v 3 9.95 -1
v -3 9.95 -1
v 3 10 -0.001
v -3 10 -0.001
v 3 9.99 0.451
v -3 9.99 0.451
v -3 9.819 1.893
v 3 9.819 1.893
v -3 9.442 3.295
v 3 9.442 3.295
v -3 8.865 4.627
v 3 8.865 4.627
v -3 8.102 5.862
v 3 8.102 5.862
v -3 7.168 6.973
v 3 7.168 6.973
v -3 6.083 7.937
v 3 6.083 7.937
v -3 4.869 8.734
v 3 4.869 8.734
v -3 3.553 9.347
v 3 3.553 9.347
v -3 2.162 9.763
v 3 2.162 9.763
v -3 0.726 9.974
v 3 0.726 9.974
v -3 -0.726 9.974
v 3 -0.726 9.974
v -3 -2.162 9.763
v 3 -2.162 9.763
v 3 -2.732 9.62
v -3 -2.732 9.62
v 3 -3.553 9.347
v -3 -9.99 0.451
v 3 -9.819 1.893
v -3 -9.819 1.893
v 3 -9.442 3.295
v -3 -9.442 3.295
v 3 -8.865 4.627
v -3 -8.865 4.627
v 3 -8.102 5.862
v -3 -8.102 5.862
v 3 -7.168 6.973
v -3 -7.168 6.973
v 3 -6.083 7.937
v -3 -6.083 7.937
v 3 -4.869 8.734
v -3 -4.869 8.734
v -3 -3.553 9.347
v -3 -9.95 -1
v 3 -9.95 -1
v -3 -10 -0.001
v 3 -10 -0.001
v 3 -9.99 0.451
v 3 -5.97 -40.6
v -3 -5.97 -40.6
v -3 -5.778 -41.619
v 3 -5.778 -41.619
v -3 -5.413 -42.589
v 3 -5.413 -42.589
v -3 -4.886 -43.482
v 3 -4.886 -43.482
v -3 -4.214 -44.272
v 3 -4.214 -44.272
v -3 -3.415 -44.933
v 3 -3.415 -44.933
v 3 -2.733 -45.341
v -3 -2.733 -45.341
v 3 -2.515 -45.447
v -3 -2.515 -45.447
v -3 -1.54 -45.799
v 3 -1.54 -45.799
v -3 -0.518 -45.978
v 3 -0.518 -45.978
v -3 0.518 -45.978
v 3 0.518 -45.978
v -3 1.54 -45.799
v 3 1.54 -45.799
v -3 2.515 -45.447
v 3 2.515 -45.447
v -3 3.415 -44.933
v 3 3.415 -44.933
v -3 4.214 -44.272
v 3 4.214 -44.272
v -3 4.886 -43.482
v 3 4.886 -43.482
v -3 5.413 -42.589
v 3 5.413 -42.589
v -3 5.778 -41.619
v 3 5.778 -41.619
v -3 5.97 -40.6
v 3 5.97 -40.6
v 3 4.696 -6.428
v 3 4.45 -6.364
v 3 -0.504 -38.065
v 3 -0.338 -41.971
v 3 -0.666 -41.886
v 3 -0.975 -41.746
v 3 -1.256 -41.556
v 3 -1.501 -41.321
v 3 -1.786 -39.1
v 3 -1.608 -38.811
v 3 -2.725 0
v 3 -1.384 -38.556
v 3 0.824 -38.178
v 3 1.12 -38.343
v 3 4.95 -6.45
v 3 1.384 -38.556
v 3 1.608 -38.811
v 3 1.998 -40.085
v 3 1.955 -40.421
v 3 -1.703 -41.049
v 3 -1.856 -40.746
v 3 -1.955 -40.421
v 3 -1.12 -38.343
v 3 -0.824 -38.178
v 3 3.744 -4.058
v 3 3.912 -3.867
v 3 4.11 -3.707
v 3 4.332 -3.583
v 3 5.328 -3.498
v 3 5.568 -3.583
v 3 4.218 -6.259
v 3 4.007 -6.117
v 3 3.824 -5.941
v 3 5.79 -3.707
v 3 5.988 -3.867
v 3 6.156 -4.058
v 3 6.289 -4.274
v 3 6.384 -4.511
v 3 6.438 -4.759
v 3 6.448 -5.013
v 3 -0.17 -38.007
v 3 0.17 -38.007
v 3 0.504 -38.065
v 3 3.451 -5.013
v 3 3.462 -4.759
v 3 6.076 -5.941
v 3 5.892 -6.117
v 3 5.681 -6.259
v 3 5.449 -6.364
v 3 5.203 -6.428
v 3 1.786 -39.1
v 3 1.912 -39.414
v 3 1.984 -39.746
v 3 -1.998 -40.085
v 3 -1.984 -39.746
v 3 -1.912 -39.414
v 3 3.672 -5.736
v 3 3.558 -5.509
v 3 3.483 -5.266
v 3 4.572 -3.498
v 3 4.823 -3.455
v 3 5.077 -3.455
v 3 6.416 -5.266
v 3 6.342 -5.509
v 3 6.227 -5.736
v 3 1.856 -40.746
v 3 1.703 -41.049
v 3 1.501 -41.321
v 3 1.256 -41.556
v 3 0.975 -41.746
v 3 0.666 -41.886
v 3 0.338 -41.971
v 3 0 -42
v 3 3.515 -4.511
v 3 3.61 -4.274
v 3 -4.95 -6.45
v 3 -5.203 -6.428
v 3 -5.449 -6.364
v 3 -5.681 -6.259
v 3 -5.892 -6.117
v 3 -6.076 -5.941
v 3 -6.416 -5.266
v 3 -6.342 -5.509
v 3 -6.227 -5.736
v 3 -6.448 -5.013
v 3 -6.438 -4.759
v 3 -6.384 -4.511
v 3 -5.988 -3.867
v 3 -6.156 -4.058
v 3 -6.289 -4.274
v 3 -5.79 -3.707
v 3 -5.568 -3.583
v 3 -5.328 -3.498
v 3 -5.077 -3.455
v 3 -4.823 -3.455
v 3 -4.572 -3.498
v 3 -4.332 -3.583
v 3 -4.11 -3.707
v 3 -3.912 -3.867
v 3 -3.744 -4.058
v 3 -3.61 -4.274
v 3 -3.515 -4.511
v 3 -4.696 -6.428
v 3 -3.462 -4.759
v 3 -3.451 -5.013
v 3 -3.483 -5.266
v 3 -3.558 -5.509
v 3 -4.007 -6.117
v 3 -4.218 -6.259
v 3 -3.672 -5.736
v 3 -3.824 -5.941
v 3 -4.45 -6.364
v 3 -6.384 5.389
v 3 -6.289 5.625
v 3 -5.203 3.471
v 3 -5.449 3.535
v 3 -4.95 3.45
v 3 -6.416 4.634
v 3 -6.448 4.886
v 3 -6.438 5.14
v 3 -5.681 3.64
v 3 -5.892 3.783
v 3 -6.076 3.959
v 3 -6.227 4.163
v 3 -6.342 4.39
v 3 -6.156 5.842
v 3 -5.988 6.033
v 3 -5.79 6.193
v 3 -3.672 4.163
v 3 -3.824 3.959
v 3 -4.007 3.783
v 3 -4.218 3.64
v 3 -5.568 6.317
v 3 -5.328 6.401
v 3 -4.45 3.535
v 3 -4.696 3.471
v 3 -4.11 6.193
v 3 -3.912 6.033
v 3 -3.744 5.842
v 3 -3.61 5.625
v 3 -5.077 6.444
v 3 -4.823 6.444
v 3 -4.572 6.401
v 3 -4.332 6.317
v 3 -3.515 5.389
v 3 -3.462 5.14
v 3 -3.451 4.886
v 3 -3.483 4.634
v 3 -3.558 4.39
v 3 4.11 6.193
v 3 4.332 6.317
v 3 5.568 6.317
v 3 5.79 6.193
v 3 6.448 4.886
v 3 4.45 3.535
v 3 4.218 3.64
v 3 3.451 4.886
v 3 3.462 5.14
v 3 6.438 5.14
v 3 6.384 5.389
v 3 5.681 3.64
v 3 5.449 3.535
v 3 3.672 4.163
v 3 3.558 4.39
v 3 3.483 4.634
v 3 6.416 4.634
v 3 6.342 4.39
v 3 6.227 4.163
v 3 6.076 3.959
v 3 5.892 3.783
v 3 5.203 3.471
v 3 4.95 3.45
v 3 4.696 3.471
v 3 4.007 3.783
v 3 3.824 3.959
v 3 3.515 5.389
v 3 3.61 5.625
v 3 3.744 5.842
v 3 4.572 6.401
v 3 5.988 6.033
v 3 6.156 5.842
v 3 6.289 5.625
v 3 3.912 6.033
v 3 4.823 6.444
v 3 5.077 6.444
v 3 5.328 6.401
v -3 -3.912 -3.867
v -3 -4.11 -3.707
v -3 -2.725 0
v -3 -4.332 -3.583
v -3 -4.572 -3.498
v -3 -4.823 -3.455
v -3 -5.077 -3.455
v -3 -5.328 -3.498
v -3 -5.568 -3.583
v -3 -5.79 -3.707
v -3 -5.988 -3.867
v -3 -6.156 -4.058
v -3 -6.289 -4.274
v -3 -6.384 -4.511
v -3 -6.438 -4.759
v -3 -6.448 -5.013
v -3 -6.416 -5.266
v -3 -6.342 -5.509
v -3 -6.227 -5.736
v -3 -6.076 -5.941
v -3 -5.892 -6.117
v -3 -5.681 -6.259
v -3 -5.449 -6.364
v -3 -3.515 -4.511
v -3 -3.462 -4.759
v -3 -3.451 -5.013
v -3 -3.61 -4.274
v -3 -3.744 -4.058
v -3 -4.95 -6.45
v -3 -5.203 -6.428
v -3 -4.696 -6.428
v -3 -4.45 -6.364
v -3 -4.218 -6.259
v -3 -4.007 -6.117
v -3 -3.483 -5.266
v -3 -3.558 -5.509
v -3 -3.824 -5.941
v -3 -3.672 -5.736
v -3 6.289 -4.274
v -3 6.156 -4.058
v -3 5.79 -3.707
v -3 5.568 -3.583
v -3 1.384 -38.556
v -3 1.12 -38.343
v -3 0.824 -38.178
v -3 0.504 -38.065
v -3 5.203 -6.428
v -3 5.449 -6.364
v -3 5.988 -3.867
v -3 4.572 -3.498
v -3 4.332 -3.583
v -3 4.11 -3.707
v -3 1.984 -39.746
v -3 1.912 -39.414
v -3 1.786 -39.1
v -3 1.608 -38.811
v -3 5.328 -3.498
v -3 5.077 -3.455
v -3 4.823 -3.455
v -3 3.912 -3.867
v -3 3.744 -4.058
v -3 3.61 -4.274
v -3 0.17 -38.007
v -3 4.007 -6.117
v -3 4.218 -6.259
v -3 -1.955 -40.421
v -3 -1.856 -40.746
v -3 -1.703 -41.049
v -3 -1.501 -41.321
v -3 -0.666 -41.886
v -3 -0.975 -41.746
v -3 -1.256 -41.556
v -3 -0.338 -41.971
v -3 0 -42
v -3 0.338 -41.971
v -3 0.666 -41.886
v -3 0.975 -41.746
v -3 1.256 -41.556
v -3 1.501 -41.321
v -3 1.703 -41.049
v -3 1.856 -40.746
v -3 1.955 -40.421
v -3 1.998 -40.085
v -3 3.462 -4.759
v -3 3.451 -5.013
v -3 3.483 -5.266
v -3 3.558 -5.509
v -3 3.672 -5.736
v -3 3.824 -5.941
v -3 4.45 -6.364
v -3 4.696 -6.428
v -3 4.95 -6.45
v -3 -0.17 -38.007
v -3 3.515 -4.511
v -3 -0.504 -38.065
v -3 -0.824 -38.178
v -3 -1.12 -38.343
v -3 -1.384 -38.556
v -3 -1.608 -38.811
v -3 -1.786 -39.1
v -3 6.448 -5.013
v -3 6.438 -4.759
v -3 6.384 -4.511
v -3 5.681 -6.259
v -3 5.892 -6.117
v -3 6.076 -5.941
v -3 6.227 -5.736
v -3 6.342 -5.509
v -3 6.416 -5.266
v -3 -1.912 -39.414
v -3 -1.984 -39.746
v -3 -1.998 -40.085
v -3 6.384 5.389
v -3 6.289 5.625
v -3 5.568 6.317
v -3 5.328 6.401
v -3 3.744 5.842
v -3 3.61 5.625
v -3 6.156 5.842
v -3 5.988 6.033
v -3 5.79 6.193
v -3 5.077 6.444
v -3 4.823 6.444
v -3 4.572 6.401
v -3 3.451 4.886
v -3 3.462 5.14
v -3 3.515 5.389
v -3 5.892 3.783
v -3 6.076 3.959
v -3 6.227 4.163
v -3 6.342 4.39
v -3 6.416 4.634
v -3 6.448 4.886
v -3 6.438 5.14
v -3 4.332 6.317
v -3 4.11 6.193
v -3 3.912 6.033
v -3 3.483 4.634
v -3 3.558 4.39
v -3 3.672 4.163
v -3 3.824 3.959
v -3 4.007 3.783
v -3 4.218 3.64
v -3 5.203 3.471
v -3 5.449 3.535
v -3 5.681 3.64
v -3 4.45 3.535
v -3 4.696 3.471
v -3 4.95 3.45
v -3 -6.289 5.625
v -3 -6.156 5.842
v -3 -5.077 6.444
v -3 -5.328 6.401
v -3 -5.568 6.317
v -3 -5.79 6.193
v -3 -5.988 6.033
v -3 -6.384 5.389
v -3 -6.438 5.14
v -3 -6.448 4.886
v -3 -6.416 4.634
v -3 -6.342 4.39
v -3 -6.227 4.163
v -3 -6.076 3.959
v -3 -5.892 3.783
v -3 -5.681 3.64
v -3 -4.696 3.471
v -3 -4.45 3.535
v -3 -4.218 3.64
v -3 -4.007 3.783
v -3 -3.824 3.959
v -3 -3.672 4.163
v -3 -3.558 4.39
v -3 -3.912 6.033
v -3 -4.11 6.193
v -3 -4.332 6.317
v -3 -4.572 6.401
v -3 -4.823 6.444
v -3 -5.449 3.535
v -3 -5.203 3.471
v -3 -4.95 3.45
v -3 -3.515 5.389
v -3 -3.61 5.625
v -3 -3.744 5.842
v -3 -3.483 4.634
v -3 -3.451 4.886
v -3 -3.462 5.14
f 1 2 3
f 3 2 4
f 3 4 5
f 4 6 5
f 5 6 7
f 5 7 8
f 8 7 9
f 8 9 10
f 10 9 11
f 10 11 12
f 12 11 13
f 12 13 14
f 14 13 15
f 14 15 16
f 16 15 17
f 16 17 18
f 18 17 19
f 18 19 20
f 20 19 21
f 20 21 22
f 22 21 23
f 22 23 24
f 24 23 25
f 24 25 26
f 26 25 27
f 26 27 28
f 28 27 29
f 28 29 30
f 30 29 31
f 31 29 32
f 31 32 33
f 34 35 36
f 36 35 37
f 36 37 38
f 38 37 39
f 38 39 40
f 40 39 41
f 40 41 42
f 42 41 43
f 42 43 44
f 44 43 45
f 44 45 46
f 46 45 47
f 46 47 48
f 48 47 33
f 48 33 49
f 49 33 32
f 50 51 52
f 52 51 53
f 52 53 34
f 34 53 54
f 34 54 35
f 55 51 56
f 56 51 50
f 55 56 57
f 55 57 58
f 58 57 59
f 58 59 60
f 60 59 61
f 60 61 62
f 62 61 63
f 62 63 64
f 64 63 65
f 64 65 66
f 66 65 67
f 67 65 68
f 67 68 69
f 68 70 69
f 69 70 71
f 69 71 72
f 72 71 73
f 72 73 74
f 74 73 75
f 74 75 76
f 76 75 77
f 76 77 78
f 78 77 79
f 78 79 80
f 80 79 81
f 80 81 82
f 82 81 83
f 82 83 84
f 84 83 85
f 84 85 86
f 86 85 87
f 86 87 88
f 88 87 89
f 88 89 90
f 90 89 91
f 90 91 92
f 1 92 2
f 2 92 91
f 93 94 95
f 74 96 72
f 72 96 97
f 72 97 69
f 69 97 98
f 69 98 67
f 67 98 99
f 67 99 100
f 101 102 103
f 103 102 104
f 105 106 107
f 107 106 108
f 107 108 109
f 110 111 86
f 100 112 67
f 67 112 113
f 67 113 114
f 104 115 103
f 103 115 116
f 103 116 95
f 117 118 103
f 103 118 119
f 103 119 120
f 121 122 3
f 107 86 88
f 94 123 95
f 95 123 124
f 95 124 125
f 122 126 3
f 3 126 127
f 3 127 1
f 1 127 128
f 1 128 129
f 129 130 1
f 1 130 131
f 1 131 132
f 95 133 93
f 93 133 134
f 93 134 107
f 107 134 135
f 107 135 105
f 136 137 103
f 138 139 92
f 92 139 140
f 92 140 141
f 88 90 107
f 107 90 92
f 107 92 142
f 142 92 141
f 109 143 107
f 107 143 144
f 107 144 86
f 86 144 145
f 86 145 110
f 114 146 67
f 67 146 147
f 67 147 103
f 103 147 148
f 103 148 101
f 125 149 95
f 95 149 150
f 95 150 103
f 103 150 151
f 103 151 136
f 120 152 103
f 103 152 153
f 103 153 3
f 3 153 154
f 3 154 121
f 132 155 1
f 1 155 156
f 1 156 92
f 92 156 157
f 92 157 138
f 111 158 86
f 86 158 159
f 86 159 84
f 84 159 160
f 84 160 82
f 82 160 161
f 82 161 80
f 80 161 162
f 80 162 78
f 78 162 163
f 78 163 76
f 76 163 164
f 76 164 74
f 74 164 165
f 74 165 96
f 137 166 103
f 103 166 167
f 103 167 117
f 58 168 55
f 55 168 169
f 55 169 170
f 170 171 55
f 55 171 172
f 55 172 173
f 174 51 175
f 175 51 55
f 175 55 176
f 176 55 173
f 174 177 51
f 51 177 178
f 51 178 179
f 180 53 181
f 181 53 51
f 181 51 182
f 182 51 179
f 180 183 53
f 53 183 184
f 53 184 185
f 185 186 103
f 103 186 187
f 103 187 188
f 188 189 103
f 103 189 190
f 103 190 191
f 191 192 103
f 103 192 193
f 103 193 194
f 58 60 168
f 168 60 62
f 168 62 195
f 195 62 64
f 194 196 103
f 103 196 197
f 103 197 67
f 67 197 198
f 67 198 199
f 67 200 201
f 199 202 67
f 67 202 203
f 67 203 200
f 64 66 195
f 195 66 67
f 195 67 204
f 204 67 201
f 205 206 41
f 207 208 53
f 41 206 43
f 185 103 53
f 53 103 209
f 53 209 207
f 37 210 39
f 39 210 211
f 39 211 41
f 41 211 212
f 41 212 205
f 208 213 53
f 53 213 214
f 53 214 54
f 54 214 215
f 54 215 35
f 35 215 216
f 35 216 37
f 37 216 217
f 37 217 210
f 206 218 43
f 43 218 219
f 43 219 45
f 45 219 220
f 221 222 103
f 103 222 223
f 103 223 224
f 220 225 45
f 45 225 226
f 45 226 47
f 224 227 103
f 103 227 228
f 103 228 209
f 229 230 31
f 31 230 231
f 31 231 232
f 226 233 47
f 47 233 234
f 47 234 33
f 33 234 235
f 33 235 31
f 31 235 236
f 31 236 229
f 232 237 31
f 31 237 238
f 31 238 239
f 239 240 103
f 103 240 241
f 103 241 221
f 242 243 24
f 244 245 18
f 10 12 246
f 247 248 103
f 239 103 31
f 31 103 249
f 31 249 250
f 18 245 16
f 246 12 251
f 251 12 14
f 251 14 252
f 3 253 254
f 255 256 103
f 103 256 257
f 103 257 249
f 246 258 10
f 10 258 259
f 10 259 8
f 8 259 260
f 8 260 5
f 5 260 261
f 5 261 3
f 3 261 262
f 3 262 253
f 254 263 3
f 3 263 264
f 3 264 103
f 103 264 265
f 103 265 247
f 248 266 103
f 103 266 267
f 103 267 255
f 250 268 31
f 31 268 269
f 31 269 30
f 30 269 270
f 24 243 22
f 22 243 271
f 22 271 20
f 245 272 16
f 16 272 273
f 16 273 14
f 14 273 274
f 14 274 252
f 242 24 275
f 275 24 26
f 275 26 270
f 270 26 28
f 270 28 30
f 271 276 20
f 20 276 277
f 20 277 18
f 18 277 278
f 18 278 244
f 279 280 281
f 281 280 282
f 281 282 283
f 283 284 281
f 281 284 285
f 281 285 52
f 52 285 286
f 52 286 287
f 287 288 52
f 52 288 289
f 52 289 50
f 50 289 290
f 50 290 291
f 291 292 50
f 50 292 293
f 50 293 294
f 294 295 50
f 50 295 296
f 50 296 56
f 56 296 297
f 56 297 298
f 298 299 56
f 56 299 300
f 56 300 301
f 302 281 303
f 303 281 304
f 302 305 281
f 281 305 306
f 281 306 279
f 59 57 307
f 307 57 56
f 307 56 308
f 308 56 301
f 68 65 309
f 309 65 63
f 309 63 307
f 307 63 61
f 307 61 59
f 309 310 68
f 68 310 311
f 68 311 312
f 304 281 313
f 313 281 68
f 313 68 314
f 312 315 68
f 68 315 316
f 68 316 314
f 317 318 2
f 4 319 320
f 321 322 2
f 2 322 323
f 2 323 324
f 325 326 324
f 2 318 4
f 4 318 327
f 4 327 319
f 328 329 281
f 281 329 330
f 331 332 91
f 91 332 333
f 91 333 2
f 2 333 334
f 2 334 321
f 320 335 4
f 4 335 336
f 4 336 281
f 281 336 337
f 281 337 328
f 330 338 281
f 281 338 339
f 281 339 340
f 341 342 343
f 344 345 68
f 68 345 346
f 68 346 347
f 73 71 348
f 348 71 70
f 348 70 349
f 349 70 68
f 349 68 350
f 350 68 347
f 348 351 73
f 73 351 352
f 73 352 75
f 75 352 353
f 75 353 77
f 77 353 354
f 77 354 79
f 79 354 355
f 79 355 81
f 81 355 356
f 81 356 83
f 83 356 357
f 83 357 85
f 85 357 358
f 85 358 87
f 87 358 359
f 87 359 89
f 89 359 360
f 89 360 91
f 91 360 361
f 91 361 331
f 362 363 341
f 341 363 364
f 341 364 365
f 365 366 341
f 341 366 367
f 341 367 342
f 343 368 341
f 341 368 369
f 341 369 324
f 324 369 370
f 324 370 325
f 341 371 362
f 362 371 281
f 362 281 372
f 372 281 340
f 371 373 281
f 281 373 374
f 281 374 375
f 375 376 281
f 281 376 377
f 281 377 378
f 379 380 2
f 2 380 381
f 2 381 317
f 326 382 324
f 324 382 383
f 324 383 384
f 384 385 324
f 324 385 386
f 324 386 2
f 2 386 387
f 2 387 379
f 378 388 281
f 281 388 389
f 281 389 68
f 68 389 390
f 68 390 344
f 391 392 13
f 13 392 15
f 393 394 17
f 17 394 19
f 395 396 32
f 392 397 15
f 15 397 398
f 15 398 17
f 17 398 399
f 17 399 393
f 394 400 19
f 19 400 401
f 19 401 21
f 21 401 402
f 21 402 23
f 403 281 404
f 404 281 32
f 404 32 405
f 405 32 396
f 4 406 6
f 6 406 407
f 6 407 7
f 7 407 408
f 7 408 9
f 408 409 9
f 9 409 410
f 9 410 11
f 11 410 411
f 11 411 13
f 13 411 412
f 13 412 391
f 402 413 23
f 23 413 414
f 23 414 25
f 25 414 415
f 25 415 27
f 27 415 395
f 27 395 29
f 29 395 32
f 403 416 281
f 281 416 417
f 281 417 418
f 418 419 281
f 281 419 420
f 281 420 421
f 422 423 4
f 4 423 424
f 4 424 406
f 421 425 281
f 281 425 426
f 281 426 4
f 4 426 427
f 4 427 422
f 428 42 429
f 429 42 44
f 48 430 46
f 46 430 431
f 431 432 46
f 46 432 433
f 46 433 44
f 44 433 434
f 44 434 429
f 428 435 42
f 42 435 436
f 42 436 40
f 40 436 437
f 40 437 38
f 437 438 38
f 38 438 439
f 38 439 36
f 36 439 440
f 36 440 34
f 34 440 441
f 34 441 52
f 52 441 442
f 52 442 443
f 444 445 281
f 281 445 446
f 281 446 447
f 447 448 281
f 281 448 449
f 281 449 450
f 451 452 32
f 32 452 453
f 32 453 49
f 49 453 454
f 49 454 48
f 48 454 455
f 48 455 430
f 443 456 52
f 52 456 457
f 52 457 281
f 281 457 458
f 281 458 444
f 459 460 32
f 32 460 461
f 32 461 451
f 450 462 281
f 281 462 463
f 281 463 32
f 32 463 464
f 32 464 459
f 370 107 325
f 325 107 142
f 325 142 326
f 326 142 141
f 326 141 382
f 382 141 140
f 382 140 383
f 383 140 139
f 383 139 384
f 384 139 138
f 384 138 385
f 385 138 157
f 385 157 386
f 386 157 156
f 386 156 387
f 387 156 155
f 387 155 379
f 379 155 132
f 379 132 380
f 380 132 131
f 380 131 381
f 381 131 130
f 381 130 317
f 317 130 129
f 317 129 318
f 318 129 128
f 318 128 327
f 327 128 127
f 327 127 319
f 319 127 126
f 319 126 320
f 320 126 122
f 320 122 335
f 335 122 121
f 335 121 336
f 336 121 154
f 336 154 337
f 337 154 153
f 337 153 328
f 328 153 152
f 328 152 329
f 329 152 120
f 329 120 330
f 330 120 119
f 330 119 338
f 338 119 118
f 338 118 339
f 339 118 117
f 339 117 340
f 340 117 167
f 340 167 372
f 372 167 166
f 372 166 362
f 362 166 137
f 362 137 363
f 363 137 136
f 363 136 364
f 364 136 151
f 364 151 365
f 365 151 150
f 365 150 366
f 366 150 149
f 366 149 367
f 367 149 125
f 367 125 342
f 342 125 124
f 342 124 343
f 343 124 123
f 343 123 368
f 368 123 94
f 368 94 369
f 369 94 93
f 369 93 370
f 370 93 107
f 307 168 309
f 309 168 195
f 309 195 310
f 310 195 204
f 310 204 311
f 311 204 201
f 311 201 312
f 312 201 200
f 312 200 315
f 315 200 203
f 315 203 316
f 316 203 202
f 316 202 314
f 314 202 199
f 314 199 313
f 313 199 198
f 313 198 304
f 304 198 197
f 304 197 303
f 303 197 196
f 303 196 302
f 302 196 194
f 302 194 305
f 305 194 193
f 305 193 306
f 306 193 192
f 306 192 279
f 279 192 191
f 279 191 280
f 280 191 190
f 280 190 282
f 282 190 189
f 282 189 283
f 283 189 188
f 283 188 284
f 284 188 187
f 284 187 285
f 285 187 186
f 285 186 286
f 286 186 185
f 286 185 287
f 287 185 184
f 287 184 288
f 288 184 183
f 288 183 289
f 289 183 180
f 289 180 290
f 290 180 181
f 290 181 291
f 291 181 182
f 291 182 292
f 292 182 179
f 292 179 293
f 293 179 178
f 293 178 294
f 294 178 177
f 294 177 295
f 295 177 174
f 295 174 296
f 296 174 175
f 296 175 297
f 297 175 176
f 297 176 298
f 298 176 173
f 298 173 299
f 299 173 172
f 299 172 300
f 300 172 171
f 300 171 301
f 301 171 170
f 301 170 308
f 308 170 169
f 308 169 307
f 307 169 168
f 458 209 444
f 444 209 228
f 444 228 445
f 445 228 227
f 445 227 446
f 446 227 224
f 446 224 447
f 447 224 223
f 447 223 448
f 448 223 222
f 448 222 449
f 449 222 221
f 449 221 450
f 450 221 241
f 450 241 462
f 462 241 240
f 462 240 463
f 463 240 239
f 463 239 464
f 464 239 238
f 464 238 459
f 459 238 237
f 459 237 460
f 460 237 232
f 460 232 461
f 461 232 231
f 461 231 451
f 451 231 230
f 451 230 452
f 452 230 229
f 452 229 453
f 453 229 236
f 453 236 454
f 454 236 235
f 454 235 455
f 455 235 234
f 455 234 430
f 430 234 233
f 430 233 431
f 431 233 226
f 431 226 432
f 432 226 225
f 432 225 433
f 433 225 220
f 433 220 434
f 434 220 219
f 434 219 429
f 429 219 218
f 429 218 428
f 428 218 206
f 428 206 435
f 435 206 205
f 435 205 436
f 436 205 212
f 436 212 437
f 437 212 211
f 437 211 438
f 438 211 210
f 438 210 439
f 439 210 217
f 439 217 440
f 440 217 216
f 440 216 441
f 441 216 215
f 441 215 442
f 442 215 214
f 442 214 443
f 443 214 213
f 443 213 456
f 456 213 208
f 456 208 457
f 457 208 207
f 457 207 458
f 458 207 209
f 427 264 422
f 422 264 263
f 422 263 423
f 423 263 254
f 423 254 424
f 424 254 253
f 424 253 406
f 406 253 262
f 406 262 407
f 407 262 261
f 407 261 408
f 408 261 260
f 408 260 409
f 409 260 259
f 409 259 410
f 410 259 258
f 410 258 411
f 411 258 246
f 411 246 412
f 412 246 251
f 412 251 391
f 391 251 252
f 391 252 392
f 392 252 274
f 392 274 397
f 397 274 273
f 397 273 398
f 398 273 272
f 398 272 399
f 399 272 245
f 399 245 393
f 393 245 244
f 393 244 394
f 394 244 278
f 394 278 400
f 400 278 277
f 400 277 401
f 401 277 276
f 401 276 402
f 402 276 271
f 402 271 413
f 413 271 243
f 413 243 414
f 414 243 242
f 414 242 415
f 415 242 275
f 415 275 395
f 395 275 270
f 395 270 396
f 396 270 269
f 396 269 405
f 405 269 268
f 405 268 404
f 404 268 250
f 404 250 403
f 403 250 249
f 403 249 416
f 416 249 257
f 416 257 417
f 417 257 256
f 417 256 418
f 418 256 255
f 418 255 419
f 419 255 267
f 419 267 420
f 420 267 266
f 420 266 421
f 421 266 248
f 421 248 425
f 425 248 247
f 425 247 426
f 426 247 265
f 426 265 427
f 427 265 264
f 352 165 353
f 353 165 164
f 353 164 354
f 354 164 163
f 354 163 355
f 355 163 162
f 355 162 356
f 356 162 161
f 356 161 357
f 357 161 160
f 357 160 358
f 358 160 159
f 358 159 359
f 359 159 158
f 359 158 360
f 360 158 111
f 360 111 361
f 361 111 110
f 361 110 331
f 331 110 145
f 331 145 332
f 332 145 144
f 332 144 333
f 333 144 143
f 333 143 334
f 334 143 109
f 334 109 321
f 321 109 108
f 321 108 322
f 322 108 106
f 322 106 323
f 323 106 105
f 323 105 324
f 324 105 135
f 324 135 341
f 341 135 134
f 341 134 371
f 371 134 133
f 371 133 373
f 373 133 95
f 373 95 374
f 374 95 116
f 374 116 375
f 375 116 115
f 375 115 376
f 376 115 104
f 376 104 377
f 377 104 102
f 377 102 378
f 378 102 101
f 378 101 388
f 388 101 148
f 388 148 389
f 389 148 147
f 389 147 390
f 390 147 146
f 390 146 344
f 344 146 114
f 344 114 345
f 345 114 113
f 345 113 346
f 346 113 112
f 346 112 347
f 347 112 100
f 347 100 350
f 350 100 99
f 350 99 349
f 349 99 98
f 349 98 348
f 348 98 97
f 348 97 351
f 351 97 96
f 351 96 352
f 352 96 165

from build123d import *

# Parameters (mm, degrees)
SKETCH1_R               = 10
SKETCH1_R_2             = 6
BOSS_EXTRUDE1_DEPTH     = 3
SKETCH2_R               = 1.5
CUT_EXTRUDE1_DEPTH      = 4
CUT_EXTRUDE1_DEPTH_BACK = 4
F_4_0MM_DOWEL_HOLE1_D   = 4


with BuildPart() as part:
    # Sketch1 → Boss-Extrude1 (new body, symmetric)
    with BuildSketch(Plane(origin=(0, 0, 0), x_dir=(0, 0, -1), z_dir=(1, 0, 0))):
        Circle(SKETCH1_R)
        with BuildLine():
            ThreePointArc((40.6, -5.969924623), (34, 0), (40.6, 5.969924623))
            Line((40.6, 5.969924623), (1, 9.949874371))
            ThreePointArc((1, 9.949874371), (7.416198487, 6.708203932), (10, 0))
            ThreePointArc((10, 0), (7.416198487, -6.708203933), (1, -9.949874371))
            Line((1, -9.949874371), (40.6, -5.969924623))
        make_face()
        with Locations((40, 0)):
            Circle(SKETCH1_R_2)
    extrude(amount=BOSS_EXTRUDE1_DEPTH, both=True)

    # Sketch2 → Cut-Extrude1 (cut, two sides)
    with BuildSketch(Plane(origin=(0, 0, 0), x_dir=(0, 0, -1), z_dir=(1, 0, 0))) as cut_extrude1_sk:
        with Locations((4.949747468, 4.949747468)):
            Circle(SKETCH2_R)
        with Locations((4.949747468, -4.949747468)):
            Circle(SKETCH2_R)
        with Locations((-4.949747468, -4.949747468)):
            Circle(SKETCH2_R)
        with Locations((-4.949747468, 4.949747468)):
            Circle(SKETCH2_R)
    extrude(amount=CUT_EXTRUDE1_DEPTH, mode=Mode.SUBTRACT)
    extrude(cut_extrude1_sk.sketch, amount=-CUT_EXTRUDE1_DEPTH_BACK, mode=Mode.SUBTRACT)

    # 4.0mm Dowel Hole1 (through all)
    with Locations(Plane(origin=(3, 0, 0), x_dir=(0, 0, -1), z_dir=(1, 0, 0))):
        with Locations((40, 0)):
            Hole(F_4_0MM_DOWEL_HOLE1_D / 2)


solid = part.part
